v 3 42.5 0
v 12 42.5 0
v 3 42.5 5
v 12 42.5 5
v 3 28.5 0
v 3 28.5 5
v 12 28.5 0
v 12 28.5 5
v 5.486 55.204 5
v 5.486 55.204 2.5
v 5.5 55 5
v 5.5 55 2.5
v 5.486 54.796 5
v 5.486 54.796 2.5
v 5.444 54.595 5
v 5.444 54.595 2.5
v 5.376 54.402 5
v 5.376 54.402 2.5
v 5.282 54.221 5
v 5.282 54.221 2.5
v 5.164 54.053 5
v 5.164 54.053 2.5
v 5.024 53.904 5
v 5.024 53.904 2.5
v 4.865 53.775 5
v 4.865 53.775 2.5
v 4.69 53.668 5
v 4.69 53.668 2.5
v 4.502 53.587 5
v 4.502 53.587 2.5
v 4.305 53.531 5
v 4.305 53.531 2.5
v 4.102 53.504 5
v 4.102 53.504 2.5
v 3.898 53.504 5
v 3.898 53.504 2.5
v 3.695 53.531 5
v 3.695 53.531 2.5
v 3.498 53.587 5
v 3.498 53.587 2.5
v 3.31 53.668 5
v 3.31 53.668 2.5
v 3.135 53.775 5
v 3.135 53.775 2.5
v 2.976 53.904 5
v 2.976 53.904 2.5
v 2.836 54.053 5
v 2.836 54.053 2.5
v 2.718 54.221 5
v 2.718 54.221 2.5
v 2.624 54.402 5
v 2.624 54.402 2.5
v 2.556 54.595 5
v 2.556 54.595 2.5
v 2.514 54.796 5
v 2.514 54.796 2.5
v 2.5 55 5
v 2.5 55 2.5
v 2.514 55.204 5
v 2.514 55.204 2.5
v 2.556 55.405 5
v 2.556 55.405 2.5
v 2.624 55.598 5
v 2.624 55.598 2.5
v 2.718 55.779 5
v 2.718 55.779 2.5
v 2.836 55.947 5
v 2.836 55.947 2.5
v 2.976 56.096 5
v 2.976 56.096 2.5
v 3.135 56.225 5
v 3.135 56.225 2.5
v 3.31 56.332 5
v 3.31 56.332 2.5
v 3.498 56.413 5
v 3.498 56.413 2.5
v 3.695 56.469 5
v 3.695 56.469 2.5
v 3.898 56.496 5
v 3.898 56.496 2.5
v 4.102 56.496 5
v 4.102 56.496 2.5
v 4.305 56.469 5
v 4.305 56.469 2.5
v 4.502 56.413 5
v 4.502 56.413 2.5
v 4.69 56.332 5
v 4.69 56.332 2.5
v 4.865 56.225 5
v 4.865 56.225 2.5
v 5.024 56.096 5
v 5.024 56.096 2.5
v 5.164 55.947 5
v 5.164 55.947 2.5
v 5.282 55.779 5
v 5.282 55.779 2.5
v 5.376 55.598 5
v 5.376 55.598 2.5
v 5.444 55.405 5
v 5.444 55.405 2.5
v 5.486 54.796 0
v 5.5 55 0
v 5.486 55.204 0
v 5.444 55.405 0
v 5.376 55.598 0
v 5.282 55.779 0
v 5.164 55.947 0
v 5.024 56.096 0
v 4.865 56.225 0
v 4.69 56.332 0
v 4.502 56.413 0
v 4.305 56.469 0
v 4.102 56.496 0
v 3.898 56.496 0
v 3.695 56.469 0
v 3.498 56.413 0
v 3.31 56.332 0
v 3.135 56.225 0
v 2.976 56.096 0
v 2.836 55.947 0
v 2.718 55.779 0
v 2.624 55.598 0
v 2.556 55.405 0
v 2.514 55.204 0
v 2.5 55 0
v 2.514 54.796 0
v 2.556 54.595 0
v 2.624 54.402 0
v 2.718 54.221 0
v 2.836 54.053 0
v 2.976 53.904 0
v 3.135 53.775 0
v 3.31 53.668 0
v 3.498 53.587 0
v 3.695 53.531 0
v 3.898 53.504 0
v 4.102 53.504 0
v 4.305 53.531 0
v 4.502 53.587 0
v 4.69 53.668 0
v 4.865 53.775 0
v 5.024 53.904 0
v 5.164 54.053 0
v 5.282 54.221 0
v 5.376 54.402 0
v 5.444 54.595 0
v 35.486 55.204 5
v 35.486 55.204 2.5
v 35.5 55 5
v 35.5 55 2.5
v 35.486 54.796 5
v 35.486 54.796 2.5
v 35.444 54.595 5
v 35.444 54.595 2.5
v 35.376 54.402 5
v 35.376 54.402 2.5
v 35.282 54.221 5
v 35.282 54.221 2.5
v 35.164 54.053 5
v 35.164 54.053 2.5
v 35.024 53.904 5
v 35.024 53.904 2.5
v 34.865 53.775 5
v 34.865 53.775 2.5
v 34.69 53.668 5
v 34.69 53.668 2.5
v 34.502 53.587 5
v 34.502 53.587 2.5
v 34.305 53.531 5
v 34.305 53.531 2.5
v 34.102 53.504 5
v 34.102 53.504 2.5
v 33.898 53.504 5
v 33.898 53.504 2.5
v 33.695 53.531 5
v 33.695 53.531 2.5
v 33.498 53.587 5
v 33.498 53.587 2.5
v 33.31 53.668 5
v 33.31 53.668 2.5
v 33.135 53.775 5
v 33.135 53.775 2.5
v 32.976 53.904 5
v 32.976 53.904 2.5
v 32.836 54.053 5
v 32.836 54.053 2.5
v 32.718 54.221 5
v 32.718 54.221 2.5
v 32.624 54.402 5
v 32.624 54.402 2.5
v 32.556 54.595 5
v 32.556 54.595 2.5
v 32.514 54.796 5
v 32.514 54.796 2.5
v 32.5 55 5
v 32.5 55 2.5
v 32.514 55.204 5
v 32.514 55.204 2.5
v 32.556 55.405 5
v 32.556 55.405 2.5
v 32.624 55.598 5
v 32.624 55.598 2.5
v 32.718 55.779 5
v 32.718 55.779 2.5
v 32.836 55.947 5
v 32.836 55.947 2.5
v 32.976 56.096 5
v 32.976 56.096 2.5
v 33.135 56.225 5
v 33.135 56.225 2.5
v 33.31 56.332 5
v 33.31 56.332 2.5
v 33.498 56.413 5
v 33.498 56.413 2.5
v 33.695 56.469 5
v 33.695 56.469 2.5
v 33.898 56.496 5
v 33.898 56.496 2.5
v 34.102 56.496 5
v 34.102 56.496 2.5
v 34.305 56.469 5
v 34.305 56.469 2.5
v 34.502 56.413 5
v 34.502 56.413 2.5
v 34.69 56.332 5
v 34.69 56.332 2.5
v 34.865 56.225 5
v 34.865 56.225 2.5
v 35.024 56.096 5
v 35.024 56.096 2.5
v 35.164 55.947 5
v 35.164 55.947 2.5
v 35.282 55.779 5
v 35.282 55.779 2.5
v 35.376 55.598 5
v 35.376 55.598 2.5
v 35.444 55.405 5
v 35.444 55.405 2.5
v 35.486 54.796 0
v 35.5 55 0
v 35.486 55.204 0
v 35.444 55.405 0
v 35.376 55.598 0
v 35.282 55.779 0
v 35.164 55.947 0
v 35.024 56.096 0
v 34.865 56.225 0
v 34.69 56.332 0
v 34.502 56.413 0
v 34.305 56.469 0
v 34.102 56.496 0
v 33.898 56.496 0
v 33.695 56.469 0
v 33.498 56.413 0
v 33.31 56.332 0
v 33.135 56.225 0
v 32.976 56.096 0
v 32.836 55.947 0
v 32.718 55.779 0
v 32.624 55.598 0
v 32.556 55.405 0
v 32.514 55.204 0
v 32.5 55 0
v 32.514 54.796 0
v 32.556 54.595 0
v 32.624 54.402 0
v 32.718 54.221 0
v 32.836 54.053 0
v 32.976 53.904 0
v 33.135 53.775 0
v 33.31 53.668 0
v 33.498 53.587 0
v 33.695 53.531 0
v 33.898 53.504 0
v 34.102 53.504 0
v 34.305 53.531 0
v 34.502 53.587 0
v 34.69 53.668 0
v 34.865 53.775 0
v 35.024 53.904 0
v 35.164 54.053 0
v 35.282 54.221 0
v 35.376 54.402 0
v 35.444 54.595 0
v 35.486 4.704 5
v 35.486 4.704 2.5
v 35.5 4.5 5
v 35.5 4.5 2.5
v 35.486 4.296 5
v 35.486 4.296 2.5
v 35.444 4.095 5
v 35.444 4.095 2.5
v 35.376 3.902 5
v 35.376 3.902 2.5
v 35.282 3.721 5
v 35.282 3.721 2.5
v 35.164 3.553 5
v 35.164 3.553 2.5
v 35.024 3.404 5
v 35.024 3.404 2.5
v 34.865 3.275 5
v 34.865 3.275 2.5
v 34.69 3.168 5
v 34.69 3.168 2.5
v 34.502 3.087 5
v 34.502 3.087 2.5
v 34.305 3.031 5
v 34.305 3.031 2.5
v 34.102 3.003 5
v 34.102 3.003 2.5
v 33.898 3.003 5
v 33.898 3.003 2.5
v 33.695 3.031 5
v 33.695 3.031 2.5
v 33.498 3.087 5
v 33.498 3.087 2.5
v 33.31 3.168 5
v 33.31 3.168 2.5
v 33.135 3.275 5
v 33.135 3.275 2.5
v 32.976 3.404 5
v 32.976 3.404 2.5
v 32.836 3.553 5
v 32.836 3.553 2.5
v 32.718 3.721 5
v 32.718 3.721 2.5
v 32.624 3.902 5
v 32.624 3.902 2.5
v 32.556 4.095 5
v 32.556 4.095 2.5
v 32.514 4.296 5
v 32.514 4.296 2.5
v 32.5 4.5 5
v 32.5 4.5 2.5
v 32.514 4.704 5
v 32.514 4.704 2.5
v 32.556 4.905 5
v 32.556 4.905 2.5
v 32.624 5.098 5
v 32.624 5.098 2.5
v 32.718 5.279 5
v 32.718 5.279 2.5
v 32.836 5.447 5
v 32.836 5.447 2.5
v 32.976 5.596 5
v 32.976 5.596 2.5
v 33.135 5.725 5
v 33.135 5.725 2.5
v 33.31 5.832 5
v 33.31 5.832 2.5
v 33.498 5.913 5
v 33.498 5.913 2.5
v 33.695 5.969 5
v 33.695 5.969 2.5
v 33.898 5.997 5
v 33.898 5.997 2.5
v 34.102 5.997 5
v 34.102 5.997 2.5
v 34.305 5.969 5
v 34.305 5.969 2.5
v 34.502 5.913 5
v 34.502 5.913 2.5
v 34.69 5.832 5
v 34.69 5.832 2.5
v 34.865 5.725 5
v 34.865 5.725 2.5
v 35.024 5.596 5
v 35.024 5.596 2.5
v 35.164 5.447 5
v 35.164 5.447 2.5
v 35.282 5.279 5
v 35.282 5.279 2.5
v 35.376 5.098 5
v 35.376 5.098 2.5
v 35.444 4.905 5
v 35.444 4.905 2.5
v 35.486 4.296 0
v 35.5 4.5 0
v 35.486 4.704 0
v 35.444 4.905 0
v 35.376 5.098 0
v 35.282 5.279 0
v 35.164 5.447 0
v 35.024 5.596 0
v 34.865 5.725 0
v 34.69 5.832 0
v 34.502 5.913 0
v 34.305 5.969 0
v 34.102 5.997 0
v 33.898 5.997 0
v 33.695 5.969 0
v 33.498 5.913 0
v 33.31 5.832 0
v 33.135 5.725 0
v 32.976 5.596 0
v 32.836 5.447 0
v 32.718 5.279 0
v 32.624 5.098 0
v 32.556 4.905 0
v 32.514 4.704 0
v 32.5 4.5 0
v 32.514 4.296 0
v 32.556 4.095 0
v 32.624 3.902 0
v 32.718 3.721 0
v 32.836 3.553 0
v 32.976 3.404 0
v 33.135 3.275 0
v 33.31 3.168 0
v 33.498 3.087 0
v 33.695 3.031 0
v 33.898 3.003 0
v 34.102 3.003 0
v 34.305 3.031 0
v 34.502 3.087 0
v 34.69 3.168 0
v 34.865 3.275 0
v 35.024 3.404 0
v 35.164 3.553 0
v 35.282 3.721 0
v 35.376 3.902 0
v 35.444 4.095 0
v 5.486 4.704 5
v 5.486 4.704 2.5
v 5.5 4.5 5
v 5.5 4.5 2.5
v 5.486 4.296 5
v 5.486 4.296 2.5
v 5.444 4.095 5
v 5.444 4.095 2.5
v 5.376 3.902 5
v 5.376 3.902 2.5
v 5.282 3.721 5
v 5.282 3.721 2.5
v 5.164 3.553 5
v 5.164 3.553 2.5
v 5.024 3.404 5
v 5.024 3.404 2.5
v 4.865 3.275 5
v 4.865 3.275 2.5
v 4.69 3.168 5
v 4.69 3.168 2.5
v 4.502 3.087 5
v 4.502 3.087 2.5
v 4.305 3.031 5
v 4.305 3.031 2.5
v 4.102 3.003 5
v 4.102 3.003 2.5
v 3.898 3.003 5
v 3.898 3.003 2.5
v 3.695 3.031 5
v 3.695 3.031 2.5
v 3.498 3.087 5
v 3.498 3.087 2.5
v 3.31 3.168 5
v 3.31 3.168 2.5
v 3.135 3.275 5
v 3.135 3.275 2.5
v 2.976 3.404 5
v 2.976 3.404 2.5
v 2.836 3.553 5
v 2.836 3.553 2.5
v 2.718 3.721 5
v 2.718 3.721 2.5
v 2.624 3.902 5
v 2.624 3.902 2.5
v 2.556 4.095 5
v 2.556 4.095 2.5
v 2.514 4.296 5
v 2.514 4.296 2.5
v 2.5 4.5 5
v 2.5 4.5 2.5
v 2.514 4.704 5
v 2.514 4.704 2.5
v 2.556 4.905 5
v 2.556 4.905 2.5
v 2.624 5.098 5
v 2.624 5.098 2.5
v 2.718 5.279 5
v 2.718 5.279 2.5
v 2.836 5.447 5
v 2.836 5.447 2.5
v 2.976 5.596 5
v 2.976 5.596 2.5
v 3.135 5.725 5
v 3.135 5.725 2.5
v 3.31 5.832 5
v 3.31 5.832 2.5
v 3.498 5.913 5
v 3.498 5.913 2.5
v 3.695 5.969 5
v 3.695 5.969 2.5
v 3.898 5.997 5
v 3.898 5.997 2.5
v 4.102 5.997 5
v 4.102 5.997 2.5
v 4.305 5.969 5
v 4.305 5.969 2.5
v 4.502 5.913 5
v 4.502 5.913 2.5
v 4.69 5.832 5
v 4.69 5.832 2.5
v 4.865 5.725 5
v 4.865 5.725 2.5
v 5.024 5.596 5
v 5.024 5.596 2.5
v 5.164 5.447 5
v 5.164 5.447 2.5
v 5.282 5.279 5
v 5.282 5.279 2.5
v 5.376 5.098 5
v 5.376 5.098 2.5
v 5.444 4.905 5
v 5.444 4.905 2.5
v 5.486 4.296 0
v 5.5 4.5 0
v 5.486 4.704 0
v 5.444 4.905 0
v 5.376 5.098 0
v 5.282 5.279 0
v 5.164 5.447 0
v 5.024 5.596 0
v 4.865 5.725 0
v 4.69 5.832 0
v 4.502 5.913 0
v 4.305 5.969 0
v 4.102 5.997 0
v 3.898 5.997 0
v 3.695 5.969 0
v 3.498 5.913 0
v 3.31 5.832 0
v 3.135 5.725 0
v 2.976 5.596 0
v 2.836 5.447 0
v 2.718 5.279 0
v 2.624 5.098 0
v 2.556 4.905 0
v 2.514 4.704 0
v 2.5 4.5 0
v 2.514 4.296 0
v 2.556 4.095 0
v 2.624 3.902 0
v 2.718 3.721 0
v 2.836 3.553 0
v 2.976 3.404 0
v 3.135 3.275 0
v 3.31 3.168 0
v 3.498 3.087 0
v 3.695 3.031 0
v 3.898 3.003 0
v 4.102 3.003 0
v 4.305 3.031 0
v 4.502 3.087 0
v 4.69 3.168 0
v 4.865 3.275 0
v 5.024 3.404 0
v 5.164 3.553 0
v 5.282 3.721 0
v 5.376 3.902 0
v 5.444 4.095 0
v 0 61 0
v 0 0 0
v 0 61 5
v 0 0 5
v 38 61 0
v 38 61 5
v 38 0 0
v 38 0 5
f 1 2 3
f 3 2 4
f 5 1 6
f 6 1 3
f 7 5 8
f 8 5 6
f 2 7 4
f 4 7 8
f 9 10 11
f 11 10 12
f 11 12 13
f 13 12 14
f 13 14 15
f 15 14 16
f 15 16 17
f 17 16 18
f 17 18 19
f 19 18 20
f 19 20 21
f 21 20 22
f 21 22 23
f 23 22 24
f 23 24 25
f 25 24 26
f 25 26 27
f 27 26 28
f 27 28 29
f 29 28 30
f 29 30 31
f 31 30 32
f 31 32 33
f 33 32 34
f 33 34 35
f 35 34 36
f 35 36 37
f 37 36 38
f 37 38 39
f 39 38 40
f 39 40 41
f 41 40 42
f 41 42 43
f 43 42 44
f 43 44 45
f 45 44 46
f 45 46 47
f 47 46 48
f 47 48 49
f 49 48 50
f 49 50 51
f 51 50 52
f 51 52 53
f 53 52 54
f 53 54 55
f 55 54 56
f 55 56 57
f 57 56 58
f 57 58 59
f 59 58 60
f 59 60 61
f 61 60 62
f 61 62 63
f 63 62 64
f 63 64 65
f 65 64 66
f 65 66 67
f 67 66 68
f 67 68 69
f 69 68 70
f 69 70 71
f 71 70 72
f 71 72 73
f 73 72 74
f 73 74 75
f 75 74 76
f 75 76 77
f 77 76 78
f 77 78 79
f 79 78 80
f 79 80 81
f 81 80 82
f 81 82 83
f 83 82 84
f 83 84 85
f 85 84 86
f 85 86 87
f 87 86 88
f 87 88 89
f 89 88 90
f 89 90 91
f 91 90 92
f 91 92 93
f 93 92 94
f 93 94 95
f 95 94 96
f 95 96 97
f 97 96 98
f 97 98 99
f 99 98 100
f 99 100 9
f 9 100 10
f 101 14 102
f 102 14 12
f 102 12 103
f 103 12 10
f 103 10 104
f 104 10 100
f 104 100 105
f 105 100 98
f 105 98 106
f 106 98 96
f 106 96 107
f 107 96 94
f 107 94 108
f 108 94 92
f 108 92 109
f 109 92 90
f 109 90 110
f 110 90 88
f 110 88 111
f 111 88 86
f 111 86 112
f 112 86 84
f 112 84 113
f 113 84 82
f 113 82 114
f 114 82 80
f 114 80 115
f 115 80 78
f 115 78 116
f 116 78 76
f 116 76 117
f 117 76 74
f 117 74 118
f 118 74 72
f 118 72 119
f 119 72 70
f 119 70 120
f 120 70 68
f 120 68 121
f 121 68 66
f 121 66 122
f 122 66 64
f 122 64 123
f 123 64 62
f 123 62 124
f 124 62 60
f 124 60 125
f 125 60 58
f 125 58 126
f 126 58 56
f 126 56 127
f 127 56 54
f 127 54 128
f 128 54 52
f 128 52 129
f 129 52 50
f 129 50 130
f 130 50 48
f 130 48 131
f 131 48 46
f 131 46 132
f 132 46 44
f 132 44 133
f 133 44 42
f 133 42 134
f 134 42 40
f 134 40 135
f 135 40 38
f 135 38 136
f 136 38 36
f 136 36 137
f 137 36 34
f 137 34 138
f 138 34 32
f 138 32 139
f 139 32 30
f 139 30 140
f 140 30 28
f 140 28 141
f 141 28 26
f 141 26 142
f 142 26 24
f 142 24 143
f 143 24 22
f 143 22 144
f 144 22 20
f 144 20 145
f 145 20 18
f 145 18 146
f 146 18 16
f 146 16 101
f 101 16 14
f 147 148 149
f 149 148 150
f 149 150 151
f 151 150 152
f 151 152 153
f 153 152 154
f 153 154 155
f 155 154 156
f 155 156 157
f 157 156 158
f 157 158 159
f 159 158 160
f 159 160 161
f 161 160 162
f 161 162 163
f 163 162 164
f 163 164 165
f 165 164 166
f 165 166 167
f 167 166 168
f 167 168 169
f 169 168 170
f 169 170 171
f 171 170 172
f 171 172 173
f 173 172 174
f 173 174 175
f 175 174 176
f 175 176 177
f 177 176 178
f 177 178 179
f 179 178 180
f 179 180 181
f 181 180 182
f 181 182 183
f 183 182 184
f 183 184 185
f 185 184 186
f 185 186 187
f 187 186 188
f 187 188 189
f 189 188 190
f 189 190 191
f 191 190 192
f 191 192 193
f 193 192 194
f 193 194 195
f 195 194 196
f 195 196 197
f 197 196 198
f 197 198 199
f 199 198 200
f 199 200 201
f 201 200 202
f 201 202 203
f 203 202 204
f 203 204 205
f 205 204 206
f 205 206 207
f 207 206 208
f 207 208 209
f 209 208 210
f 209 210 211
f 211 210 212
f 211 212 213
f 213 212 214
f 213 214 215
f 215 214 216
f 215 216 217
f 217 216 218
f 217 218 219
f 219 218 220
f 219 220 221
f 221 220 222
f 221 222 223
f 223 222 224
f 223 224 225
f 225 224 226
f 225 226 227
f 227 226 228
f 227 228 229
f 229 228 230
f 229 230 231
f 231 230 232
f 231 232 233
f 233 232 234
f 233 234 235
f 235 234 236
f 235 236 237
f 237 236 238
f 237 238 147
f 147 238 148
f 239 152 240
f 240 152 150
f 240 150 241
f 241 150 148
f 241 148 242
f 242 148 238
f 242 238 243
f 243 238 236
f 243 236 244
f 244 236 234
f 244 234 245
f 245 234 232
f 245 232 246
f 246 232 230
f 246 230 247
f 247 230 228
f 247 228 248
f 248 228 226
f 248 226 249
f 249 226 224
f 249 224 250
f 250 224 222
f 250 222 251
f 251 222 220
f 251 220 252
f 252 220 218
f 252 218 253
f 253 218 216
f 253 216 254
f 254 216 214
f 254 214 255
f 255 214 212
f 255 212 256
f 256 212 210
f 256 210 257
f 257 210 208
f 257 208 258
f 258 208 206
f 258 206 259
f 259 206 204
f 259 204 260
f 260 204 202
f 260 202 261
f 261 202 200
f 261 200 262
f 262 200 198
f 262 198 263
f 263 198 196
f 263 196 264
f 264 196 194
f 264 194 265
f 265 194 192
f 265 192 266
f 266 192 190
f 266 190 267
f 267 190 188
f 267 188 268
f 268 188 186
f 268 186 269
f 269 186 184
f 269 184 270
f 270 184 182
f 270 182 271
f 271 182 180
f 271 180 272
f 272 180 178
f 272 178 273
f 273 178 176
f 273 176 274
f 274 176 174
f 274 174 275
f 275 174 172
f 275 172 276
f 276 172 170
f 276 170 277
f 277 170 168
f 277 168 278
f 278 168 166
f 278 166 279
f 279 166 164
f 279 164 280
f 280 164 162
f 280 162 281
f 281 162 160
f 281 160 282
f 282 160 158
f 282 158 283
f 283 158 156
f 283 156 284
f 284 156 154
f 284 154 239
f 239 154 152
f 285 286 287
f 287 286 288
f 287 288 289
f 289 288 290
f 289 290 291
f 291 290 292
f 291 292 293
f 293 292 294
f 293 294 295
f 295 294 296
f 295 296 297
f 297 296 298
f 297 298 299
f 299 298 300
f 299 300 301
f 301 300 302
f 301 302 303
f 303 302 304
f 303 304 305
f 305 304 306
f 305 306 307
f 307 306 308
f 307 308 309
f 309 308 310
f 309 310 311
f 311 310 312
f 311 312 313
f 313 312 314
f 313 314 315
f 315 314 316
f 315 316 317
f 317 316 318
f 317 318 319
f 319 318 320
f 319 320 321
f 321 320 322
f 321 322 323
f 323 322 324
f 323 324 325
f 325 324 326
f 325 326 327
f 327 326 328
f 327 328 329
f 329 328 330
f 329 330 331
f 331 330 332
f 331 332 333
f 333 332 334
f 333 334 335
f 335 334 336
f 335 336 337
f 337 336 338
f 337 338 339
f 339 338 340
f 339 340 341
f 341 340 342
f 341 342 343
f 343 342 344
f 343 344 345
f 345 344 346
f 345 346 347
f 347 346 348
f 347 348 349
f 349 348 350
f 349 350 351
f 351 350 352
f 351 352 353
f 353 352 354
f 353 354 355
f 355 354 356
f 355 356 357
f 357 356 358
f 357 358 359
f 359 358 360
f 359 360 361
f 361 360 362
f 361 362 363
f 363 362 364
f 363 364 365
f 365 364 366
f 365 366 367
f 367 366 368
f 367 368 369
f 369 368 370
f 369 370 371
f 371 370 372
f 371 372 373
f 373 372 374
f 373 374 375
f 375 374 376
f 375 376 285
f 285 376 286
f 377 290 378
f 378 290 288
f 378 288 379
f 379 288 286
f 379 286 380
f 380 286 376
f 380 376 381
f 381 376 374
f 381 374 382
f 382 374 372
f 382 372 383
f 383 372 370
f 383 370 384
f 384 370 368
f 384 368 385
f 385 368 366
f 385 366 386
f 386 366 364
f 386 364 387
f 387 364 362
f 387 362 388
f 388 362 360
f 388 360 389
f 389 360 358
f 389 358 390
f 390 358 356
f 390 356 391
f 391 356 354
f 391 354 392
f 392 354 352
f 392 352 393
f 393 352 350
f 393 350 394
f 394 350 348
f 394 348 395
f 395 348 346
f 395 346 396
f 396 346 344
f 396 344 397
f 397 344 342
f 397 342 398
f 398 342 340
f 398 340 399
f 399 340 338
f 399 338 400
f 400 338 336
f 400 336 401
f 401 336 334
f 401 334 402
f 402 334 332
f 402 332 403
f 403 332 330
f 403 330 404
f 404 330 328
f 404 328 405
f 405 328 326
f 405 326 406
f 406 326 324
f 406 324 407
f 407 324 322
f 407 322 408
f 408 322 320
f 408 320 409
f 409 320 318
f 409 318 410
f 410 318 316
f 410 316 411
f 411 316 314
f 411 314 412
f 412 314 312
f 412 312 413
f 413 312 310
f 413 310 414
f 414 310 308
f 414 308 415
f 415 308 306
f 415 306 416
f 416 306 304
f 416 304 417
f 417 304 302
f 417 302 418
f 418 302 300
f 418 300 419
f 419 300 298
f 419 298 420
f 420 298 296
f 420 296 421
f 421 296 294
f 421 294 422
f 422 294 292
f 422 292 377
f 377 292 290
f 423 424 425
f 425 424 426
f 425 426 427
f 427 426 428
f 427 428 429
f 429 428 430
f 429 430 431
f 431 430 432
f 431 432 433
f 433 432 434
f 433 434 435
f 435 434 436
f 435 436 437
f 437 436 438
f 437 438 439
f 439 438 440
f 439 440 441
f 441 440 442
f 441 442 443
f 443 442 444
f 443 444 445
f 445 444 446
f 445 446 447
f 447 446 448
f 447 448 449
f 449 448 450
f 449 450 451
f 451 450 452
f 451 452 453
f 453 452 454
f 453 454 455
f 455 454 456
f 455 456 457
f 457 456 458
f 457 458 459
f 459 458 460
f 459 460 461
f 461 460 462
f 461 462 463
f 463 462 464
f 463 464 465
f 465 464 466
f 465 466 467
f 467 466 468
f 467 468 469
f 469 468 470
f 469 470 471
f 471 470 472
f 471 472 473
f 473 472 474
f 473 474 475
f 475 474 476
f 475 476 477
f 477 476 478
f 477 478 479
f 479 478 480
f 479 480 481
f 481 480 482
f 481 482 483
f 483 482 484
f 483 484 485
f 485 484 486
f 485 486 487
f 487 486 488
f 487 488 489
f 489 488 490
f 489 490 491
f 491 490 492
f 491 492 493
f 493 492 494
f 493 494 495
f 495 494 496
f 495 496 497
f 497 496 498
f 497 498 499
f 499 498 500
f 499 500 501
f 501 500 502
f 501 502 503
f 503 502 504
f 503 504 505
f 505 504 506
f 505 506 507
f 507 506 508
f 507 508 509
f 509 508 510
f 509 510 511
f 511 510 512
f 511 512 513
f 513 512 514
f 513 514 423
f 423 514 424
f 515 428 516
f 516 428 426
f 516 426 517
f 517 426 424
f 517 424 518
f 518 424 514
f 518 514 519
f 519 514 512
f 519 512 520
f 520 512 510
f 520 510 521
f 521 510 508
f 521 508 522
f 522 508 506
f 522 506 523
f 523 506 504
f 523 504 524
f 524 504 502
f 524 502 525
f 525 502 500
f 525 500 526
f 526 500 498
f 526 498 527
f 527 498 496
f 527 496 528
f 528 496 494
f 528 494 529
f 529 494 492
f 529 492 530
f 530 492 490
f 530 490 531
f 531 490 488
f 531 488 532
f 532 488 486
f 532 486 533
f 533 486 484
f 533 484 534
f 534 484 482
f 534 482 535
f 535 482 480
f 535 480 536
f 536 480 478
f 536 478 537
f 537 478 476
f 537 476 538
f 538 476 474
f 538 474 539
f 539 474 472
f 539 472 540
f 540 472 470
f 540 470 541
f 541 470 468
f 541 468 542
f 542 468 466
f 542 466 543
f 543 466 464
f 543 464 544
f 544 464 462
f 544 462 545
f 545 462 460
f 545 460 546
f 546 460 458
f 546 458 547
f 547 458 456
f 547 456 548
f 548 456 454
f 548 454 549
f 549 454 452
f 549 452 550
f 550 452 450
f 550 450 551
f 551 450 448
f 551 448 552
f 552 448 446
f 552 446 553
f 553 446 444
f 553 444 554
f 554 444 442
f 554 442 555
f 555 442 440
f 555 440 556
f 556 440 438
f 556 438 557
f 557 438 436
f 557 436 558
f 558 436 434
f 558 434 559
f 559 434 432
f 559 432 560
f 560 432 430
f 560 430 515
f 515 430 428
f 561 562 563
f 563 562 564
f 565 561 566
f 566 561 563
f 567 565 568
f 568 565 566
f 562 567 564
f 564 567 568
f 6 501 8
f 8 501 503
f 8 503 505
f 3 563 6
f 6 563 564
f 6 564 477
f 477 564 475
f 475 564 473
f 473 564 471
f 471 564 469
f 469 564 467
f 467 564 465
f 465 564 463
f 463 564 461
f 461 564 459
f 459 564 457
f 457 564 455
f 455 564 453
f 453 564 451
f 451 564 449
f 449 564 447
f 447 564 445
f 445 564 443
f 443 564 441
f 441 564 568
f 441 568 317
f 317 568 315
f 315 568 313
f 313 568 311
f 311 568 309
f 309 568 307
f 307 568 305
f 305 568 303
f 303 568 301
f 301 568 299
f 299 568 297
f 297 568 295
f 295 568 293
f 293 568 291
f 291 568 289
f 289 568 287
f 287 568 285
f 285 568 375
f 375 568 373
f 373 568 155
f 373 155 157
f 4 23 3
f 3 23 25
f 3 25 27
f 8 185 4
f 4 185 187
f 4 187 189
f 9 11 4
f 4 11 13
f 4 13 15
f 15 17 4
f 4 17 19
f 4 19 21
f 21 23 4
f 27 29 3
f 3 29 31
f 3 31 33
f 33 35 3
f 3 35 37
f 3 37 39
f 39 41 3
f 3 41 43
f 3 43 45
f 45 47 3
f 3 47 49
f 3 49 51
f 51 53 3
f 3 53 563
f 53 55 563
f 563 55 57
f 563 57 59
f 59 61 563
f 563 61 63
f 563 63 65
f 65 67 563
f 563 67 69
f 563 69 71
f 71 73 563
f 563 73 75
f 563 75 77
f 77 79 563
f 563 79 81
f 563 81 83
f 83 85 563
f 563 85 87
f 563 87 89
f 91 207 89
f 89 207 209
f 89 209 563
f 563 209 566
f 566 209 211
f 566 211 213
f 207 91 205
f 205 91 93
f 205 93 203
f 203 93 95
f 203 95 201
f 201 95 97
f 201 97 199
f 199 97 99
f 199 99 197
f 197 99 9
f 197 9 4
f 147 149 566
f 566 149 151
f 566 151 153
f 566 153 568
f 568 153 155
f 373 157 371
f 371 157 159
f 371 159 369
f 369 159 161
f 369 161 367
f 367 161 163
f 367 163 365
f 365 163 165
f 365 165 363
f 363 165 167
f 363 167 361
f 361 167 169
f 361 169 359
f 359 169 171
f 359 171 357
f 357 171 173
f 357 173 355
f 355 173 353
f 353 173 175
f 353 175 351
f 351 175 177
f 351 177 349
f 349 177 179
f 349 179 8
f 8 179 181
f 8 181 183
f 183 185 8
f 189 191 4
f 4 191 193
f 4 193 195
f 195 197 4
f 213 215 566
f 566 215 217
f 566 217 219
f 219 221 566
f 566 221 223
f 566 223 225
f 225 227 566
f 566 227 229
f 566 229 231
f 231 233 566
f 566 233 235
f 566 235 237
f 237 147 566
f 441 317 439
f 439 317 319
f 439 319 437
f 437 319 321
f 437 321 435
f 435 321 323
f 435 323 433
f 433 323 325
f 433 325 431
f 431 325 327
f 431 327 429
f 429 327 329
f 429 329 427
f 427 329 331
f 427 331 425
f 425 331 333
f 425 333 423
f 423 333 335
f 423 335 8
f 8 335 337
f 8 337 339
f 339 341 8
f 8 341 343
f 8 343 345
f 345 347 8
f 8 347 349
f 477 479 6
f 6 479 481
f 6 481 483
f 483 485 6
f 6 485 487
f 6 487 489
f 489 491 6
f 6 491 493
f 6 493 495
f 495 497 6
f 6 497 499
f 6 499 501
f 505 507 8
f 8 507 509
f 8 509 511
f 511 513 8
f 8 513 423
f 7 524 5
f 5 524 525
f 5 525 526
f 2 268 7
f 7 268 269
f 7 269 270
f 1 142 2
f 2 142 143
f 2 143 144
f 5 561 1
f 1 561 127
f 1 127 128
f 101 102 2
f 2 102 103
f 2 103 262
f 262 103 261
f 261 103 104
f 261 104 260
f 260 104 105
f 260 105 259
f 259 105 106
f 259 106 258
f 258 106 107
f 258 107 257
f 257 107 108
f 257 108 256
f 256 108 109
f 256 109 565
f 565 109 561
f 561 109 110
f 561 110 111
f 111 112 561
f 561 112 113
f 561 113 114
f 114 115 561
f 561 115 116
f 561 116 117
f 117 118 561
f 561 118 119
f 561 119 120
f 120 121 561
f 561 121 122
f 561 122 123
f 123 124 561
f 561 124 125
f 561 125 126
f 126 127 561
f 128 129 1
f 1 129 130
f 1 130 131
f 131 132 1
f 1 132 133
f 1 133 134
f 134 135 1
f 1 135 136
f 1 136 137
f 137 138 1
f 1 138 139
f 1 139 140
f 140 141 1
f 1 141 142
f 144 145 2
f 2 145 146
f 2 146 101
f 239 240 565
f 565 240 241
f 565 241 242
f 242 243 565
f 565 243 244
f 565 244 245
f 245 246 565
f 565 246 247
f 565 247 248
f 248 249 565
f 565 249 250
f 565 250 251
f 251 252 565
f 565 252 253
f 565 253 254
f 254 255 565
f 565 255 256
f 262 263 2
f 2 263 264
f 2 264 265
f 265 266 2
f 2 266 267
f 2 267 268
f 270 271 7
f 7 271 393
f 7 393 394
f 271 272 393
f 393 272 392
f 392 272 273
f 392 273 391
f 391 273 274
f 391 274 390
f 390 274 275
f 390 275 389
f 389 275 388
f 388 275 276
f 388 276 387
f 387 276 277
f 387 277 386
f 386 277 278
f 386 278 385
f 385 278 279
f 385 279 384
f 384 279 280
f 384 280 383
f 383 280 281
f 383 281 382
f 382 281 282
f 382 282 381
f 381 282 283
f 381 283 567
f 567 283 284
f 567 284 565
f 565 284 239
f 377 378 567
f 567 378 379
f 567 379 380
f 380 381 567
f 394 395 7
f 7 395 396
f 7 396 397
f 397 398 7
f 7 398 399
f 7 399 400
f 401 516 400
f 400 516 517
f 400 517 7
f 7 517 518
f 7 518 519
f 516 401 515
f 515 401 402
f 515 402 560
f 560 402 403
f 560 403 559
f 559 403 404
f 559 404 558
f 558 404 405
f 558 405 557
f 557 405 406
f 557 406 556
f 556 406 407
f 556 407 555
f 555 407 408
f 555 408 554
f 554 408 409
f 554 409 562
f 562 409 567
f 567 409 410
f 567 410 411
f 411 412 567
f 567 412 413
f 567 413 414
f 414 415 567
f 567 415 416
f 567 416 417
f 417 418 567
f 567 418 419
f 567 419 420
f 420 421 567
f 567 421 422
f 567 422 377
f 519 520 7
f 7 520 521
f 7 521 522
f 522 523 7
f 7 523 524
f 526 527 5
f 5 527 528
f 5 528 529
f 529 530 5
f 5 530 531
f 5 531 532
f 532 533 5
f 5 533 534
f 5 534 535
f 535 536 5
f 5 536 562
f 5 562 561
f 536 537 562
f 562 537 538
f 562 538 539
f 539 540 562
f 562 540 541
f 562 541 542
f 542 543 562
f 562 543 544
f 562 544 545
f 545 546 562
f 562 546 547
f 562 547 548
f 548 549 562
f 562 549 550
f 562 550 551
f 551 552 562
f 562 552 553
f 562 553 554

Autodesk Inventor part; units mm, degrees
ref_plane "YZ Plane" through (0, 0, 0) normal (1, 0, 0) x (0, 1, 0)
ref_plane "XZ Plane" through (0, 0, 0) normal (0, 1, 0) x (-1, 0, 0)
ref_plane "XY Plane" through (0, 0, 0) normal (0, 0, 1) x (1, 0, 0)
sketch "Sketch1" plane through (0, 0, 0) normal (0, 0, 1) x (1, 0, 0)
  line L0 (0, 0) -> (38, 0)
  line L1 (38, 0) -> (38, 61)
  line L2 (38, 61) -> (0, 61)
  line L3 (0, 61) -> (0, 0)
  line L4 (0, 61) -> (4, 61)
  line L5 (4, 61) -> (4, 55)
  line L6 (38, 61) -> (34, 61)
  line L7 (34, 61) -> (34, 55)
  line L8 (38, 0) -> (34, 0)
  line L9 (34, 0) -> (34, 4.5)
  line L10 (0, 0) -> (4, 0)
  line L11 (4, 0) -> (4, 4.5)
  circle A0 centre (4, 4.5) radius 1.5
  circle A1 centre (34, 4.5) radius 1.5
  circle A2 centre (34, 55) radius 1.5
  circle A3 centre (4, 55) radius 1.5
  dimension "d0" = 38
  dimension "d1" = 61
  dimension "d2" = 4
  dimension "d3" = 6
  dimension "d4" = 4
  dimension "d5" = 6
  dimension "d6" = 4
  dimension "d7" = 4.5
  dimension "d8" = 4
  dimension "d9" = 4.5
  dimension "d10" = 3
  dimension "d11" = 3
  dimension "d12" = 3
  dimension "d13" = 3
extrude "Extrusion1" add sketch "Sketch1" along normal blind 5
sketch "Sketch2" plane through (0, 0, 5) normal (0, 0, 1) x (1, 0, 0)
  line L0 (38, 61) -> (0, 61) projected
  line L1 (0, 61) -> (3, 61)
  line L2 (3, 61) -> (3, 42.5)
  line L3 (3, 42.5) -> (12, 42.5)
  line L4 (12, 42.5) -> (12, 28.5)
  line L5 (12, 28.5) -> (3, 28.5)
  line L6 (3, 28.5) -> (3, 42.5)
  line L7 (3, 42.5) -> (3, 51.2798)
  point P0 (0, 0)
  dimension "d16" = 3
  dimension "d17" = 18.5
  dimension "d18" = 9
  dimension "d19" = 14
  dimension "d20" = 9
extrude "Extrusion2" cut sketch "Sketch2" against normal through all
properties part number "arm_1_case"
